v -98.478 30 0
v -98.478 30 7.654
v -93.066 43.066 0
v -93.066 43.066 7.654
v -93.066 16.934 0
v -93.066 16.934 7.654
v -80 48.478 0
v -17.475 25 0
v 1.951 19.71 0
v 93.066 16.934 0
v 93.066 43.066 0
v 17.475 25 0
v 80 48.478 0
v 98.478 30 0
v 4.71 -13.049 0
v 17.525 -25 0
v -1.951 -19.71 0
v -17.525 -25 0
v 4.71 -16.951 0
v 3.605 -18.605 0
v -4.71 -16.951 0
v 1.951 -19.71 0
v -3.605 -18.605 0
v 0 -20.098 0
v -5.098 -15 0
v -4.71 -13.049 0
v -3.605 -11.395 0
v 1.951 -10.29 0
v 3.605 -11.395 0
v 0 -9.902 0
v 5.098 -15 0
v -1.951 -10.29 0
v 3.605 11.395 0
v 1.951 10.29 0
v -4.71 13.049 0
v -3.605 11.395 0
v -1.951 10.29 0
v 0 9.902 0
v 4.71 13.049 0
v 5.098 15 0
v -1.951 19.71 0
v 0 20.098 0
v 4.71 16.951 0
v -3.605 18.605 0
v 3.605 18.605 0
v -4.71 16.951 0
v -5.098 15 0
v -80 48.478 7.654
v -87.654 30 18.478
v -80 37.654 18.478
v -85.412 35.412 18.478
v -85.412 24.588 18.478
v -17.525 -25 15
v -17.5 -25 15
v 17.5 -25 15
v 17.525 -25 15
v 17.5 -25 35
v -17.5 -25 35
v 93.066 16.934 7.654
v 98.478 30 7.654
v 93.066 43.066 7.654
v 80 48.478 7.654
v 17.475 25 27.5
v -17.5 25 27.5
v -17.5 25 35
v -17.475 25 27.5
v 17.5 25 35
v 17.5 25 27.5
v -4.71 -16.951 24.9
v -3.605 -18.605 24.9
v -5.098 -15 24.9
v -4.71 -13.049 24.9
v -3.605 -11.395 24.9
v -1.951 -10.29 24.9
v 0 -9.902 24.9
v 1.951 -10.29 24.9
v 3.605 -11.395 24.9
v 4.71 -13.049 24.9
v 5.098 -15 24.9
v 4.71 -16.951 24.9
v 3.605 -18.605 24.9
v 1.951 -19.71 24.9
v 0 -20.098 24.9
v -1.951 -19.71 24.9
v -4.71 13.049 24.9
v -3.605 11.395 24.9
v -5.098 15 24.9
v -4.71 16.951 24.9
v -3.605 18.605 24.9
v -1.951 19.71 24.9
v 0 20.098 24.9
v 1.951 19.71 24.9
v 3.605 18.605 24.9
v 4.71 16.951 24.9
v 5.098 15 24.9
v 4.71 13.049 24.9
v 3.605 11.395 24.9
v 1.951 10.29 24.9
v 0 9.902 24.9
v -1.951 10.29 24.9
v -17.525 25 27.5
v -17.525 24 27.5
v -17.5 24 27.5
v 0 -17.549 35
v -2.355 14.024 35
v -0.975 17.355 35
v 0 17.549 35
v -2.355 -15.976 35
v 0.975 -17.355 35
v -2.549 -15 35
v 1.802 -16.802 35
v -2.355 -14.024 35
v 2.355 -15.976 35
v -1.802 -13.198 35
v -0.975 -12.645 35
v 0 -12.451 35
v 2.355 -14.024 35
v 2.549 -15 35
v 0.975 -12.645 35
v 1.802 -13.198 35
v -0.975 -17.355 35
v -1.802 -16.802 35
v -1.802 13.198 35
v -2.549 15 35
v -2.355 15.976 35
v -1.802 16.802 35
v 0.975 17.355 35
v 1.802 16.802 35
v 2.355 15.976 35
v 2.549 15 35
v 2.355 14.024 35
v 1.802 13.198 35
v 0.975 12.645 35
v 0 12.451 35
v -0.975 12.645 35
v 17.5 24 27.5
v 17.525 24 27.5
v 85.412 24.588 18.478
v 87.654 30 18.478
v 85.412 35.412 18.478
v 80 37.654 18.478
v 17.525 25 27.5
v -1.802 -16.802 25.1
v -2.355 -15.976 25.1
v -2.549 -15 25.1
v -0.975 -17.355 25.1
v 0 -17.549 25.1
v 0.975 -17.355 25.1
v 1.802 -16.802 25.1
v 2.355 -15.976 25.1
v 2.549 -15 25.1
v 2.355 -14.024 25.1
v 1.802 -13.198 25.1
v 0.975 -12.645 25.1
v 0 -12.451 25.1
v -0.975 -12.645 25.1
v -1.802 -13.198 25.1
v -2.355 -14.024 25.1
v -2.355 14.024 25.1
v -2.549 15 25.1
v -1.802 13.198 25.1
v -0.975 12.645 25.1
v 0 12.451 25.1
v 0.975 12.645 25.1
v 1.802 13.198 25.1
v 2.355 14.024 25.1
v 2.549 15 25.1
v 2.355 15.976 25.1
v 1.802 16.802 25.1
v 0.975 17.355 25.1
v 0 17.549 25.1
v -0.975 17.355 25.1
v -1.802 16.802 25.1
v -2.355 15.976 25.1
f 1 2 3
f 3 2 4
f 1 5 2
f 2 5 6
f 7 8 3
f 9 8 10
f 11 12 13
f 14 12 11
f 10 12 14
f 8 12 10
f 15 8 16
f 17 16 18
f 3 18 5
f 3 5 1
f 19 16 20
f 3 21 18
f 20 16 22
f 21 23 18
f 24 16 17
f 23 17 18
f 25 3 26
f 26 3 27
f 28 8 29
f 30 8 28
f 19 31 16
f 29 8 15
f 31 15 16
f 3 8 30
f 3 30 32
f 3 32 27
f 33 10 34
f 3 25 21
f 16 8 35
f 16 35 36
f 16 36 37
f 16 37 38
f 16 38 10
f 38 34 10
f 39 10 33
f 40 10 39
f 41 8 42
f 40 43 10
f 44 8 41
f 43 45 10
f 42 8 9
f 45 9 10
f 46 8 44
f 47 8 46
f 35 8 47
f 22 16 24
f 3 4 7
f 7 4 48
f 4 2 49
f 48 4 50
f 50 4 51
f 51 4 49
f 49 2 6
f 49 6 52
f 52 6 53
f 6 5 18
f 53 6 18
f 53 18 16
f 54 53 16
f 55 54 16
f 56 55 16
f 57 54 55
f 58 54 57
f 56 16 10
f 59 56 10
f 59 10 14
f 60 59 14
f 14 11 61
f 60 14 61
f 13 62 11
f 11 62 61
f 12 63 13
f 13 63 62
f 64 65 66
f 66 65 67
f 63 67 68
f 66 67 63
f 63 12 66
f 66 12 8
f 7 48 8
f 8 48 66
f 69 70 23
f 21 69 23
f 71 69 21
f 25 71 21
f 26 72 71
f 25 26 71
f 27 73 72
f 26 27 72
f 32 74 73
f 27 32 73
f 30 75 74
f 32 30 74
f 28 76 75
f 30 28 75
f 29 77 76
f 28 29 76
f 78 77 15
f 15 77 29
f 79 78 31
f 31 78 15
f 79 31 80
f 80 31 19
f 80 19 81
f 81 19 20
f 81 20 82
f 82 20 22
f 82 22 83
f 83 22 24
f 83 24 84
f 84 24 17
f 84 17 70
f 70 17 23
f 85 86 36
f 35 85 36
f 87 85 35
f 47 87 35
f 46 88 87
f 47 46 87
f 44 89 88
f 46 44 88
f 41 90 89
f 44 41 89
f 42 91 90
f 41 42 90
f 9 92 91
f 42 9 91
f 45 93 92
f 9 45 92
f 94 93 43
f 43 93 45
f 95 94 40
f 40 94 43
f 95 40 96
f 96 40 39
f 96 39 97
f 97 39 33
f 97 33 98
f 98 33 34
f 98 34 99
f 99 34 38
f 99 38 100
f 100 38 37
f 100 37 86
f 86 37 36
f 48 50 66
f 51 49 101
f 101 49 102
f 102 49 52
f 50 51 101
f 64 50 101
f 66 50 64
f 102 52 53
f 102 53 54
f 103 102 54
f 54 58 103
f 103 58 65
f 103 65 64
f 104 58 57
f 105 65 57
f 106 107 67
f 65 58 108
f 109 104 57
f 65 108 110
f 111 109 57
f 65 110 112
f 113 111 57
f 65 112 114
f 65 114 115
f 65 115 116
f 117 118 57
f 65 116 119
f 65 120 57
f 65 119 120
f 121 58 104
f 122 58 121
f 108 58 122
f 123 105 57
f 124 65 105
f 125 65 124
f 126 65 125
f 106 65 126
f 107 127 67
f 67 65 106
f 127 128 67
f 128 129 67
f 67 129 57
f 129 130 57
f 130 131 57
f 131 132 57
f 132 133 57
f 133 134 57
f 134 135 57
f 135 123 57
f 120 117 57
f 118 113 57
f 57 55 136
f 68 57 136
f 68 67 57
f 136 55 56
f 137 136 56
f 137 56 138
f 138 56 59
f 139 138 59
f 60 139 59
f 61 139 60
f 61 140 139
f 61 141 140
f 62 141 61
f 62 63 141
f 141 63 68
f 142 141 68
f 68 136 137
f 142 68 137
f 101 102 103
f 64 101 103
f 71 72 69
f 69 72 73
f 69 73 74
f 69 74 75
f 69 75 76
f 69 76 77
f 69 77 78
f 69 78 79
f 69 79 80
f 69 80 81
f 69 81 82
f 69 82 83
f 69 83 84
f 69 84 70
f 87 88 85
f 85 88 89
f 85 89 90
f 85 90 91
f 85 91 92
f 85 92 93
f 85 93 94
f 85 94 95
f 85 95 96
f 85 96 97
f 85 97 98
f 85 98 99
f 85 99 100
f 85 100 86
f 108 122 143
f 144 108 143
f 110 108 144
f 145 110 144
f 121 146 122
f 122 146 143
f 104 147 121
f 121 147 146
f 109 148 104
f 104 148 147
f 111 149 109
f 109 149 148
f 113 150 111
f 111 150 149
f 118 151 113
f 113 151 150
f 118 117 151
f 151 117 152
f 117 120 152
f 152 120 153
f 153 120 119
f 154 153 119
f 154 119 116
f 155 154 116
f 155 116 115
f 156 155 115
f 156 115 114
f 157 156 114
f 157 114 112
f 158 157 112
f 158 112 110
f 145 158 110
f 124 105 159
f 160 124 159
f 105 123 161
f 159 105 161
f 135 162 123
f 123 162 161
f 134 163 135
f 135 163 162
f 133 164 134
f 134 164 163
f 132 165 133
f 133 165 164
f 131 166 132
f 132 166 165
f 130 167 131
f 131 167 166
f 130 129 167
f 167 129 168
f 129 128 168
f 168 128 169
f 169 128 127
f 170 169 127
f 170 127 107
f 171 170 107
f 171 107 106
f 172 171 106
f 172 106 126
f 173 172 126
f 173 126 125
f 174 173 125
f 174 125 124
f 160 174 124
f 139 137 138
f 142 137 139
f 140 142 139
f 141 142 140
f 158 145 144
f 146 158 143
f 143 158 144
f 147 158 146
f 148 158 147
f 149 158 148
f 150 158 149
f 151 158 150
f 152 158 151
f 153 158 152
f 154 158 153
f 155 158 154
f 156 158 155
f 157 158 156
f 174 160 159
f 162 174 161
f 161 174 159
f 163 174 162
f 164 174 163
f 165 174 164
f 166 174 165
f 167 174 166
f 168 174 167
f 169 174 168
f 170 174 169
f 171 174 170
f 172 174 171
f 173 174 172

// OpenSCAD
left = -1;
right = 1;
top = -1;
bottom = 1;

print_layer_height = 0.2;

function accurate_diam(diam,sides) = 1 / cos(180/sides) / 2 * diam;

module hole(diam,len,sides=8) {
  cylinder(r=accurate_diam(diam,sides),h=len,center=true,$fn=sides);
}

module backback_hook() {
  arm_width          = 200;
  arm_thickness      = 20;
  arm_dist_from_wall = 15;

  post_width         = 35;
  post_height        = 50;
  post_depth         = arm_dist_from_wall + arm_thickness;

  screw_diam            = 5;
  screw_head_diam       = 10;
  screw_mount_thickness = 10;
  screw_hole_spacing    = post_height - screw_head_diam*2;

  module body() {
    // mount post
    cube([post_width,post_height,post_depth*2],center=true);

    // arms
    rounded_radius = arm_thickness;
    for (side=[left,right]) {
      hull() {
        translate([(arm_width/2-rounded_radius)*side,post_height/2+5,0]) {
          sphere(r=rounded_radius,$fn=8);
        }

        // arm closer to wall
        translate([(post_width/2)*side,post_height/2-.5,post_depth/2-arm_dist_from_wall/2])
          cube([0.05,1,post_depth],center=true);

        // full distance from wall
        translate([(post_width/2)*side,-post_height/2+.5,arm_dist_from_wall/2])
          cube([0.05,1,arm_dist_from_wall],center=true);
      }
    }
  }

  module holes() {
    // ensure a flat bottom for printing
    translate([0,0,-50])
      cube([arm_width+20,post_height*3,100],center=true);

    // mounting holes
    for (side=[top,bottom]) {
      translate([0,screw_hole_spacing/2*side,0]) {
        hole(screw_diam,post_depth*2+1,16);
        hole(screw_head_diam,(post_depth-screw_mount_thickness)*2,16);
      }
    }
  }

  module bridges() {
    for (side=[top,bottom]) {
      translate([0,screw_hole_spacing/2*side,post_depth-screw_mount_thickness]) {
        cube([screw_head_diam+1,screw_head_diam+1,print_layer_height],center=true);
      }
    }
  }

  difference() {
    body();
    holes();
  }
  bridges();
}

backback_hook();
